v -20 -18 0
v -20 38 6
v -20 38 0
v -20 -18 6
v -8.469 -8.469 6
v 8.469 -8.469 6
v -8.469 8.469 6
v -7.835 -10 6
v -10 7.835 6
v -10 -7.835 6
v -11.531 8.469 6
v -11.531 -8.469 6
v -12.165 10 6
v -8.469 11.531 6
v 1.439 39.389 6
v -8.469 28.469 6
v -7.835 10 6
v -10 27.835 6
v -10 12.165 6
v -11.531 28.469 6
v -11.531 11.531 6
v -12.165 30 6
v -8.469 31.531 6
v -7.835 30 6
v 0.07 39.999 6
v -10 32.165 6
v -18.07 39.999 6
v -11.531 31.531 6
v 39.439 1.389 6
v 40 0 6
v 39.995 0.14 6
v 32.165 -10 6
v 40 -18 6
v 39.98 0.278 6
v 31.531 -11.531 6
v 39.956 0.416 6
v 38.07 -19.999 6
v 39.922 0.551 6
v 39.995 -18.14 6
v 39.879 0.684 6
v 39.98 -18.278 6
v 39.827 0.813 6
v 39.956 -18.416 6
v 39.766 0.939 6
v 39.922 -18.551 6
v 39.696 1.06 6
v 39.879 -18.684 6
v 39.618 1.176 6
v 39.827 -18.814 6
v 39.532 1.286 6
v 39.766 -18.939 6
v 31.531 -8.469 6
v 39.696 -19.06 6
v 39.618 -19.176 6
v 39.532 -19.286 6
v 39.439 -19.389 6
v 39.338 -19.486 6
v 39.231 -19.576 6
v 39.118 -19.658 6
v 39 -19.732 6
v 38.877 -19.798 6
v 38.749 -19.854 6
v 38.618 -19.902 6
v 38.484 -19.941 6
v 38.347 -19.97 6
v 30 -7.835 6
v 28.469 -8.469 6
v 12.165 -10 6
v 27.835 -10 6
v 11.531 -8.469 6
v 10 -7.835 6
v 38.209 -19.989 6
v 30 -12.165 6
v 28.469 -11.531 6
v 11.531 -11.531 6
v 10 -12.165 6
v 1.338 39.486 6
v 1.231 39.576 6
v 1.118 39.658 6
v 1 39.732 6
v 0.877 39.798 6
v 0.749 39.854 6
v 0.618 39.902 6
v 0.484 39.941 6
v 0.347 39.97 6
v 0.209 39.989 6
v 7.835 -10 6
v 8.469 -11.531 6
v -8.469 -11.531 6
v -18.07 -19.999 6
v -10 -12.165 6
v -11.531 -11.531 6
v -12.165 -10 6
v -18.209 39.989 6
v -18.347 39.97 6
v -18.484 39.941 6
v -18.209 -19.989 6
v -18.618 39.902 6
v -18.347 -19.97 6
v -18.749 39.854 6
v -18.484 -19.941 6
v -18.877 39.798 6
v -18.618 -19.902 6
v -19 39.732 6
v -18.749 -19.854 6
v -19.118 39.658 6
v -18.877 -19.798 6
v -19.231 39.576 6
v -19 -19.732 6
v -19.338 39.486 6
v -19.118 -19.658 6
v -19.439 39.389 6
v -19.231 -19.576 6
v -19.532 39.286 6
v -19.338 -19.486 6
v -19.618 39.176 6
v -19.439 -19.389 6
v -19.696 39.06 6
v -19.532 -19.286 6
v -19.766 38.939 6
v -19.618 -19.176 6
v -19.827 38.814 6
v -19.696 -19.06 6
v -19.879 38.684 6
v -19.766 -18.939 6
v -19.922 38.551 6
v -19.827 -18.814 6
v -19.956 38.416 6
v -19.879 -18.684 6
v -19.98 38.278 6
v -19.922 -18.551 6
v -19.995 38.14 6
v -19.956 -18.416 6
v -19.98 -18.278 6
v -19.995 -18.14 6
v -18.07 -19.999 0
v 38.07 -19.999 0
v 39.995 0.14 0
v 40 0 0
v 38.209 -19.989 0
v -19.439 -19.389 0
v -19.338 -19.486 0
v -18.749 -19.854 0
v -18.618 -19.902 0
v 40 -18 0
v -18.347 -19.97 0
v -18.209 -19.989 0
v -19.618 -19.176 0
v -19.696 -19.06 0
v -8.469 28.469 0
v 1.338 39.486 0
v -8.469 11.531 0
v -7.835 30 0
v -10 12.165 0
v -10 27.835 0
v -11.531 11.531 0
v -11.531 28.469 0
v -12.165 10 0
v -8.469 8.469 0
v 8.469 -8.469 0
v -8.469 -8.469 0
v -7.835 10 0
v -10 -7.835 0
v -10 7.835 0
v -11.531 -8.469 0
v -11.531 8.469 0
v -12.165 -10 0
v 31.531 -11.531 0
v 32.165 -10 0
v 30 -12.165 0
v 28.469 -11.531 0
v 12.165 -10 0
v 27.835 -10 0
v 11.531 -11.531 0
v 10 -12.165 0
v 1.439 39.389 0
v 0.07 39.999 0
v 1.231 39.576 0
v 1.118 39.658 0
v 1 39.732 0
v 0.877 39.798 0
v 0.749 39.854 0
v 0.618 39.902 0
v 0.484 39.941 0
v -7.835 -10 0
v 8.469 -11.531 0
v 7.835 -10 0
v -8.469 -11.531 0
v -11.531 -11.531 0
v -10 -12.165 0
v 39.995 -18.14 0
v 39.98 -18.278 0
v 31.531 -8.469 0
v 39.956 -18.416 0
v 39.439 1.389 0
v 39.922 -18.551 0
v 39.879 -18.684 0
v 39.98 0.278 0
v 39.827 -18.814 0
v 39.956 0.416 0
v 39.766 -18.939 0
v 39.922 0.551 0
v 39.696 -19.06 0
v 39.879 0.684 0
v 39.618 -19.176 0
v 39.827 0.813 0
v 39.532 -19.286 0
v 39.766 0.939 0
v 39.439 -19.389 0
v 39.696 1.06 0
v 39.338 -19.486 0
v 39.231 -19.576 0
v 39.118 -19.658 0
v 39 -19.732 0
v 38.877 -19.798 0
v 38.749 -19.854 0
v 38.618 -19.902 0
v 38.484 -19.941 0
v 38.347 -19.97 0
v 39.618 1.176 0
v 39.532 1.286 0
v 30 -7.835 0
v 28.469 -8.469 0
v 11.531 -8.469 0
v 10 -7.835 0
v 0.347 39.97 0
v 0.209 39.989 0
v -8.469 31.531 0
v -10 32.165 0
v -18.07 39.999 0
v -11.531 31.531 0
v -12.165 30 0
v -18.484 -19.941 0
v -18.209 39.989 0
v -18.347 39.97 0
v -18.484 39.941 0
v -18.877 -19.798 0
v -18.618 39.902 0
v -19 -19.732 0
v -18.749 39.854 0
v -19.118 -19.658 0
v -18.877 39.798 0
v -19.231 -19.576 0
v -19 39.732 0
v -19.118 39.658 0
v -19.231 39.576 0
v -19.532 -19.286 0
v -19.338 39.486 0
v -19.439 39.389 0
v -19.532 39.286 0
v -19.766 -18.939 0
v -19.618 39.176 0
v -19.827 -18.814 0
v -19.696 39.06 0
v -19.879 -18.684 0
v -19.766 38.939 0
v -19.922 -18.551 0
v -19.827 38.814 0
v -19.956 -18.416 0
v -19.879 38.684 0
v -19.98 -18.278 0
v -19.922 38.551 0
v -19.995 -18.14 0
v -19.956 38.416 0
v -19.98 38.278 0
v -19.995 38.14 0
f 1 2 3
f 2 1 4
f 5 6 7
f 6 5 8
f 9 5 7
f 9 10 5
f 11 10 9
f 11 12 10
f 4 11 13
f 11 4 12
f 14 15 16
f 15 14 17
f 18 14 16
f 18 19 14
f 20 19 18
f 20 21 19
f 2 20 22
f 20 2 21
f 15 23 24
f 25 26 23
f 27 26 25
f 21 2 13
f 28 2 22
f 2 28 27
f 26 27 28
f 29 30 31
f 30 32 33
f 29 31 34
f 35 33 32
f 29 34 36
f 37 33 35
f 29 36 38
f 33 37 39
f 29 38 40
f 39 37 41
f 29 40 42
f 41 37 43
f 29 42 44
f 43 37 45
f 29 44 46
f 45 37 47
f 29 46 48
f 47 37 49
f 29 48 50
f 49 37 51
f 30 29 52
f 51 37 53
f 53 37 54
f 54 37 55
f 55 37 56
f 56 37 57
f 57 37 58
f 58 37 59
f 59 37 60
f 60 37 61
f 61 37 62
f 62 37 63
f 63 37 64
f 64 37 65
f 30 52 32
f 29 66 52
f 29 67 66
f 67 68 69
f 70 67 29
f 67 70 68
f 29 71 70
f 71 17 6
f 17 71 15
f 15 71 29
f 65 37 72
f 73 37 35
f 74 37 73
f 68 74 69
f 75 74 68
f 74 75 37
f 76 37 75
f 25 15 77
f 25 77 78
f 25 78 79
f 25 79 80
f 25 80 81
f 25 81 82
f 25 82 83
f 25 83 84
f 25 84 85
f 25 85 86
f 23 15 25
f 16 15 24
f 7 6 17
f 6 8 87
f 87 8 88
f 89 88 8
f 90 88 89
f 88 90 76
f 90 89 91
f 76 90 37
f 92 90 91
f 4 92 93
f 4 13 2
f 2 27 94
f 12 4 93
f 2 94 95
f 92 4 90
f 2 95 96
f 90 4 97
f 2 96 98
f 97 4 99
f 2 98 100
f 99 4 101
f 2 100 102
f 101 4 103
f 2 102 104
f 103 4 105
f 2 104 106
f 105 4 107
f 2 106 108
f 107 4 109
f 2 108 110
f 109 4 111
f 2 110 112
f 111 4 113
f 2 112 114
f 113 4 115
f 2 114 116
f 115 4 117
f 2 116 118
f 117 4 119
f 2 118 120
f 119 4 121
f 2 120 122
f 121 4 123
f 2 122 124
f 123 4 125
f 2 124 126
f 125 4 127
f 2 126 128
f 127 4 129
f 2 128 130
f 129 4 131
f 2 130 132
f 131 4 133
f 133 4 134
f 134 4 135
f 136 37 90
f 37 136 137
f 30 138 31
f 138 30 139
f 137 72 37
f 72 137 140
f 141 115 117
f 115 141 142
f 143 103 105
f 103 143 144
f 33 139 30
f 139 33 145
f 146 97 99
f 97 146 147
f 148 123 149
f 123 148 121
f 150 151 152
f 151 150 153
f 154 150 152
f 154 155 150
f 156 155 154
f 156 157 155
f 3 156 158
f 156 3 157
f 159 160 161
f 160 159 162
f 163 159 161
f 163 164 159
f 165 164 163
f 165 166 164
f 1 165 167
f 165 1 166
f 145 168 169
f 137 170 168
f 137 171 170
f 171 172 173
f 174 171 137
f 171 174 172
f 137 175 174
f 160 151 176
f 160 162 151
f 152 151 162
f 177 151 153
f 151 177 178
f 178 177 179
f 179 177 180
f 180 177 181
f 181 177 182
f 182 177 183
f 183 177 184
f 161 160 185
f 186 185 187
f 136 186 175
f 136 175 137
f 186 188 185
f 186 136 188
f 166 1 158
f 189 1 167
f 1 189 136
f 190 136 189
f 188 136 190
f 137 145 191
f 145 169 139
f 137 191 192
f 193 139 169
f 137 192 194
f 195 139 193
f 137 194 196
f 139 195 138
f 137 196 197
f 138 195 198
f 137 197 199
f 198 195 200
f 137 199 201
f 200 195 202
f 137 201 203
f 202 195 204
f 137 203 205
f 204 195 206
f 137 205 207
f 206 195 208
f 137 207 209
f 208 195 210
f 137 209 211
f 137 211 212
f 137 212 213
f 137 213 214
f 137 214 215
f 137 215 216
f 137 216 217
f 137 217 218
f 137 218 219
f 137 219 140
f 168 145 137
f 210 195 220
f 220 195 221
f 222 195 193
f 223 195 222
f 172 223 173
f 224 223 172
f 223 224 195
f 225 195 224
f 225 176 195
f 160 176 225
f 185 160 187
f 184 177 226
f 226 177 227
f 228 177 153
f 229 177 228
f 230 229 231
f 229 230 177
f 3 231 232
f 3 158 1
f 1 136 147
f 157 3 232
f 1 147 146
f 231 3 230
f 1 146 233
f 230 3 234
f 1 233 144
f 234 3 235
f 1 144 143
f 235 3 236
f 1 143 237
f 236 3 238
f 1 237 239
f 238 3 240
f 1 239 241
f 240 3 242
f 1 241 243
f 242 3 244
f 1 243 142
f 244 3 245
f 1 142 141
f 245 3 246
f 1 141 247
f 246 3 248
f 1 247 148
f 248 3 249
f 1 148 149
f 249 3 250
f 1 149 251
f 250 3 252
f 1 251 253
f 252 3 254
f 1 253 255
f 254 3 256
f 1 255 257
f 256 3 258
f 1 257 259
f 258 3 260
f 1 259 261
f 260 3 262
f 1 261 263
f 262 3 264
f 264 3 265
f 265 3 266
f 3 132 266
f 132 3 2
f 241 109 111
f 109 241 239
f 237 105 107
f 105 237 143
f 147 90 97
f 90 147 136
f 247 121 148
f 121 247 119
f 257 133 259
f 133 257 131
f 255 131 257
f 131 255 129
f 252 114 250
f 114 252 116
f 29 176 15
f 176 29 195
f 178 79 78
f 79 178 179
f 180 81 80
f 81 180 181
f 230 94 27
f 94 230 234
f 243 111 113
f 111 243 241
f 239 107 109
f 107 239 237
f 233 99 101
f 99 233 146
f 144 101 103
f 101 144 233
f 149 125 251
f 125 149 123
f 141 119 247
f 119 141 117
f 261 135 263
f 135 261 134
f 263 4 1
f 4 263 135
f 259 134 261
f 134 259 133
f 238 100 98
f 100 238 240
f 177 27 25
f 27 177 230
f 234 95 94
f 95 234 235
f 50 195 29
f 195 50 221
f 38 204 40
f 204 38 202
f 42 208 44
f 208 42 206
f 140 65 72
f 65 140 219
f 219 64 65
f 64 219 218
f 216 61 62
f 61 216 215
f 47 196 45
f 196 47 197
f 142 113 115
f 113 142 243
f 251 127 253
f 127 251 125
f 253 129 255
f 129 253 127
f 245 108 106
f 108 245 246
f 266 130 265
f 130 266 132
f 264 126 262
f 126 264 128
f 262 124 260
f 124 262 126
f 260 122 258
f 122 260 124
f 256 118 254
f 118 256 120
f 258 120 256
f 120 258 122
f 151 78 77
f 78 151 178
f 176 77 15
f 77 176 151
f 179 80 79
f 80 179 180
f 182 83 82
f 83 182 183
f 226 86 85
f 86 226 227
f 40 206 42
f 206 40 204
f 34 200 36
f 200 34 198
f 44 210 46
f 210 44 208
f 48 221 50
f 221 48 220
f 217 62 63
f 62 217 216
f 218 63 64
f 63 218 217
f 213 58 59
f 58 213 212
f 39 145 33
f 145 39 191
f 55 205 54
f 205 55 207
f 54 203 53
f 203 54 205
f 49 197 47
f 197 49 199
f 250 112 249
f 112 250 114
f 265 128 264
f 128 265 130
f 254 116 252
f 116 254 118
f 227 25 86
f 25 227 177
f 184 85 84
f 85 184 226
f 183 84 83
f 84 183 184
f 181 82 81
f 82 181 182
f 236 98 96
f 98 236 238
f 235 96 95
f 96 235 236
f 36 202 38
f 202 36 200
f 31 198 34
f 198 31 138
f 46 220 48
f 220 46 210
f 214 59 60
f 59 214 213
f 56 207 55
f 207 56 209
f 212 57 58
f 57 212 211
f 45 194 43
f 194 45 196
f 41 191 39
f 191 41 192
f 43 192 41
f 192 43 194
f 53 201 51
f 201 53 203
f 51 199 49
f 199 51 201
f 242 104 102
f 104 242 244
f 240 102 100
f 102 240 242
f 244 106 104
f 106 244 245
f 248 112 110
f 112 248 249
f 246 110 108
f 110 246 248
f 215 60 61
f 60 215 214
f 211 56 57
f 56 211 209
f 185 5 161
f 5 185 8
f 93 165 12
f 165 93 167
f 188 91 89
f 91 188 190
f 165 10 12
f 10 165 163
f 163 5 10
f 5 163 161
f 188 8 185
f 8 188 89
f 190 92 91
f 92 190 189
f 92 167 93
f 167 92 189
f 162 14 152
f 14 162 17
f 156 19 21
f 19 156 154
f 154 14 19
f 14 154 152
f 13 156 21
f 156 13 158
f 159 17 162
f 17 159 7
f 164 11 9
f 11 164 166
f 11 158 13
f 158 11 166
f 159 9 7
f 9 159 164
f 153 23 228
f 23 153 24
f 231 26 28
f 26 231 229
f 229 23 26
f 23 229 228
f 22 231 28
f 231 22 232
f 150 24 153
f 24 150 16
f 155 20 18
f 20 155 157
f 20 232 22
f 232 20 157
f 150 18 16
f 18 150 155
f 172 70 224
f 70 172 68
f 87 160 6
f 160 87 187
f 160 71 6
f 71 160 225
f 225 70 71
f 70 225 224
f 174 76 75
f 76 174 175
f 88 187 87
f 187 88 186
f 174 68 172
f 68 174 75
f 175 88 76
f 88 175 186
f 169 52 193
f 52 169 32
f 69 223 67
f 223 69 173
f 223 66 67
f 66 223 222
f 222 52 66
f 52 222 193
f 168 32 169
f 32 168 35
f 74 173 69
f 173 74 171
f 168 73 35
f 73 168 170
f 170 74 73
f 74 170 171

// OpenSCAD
// file: polyhole.scad
// The Cylinder is dead! Long live the Cylinder!
// A module for a polyhole by radius, based on Nophead's work.

module polyhole(h, r, cent = false)
{
    n = max(round(4 * r), 3);
    cylinder(h = h, r = r / cos(180 / n), $fn = n, center = cent);
}
// main file
// Corener brace

use<polyhole.scad>

CornerBrace();

module CornerBrace()
{
    difference()
    {
        hull()
        {
            translate([-20+2, -20+2, 0])
                cylinder(h = 6, r = 2, $fn = 90);
            translate([-20+2, 40-2, 0])
                cylinder(h = 6, r = 2, $fn = 90);
            translate([40-2, -20+2, 0])
                cylinder(h = 6, r = 2, $fn = 90);
            translate([0, 40-2, 0])
                cylinder(h = 6, r = 2, $fn = 90);
            translate([40-2, 0, 0])
                cylinder(h = 6, r = 2, $fn = 90);
        }
        translate([-10, -10, 0])
            polyhole(6, 2);
        translate([-10, 10, 0])
            polyhole(6, 2);
        translate([-10, 30, 0])
            polyhole(6, 2);
        translate([10, -10, 0])
            polyhole(6, 2);
        translate([30, -10, 0])
            polyhole(6, 2);
    }
}
